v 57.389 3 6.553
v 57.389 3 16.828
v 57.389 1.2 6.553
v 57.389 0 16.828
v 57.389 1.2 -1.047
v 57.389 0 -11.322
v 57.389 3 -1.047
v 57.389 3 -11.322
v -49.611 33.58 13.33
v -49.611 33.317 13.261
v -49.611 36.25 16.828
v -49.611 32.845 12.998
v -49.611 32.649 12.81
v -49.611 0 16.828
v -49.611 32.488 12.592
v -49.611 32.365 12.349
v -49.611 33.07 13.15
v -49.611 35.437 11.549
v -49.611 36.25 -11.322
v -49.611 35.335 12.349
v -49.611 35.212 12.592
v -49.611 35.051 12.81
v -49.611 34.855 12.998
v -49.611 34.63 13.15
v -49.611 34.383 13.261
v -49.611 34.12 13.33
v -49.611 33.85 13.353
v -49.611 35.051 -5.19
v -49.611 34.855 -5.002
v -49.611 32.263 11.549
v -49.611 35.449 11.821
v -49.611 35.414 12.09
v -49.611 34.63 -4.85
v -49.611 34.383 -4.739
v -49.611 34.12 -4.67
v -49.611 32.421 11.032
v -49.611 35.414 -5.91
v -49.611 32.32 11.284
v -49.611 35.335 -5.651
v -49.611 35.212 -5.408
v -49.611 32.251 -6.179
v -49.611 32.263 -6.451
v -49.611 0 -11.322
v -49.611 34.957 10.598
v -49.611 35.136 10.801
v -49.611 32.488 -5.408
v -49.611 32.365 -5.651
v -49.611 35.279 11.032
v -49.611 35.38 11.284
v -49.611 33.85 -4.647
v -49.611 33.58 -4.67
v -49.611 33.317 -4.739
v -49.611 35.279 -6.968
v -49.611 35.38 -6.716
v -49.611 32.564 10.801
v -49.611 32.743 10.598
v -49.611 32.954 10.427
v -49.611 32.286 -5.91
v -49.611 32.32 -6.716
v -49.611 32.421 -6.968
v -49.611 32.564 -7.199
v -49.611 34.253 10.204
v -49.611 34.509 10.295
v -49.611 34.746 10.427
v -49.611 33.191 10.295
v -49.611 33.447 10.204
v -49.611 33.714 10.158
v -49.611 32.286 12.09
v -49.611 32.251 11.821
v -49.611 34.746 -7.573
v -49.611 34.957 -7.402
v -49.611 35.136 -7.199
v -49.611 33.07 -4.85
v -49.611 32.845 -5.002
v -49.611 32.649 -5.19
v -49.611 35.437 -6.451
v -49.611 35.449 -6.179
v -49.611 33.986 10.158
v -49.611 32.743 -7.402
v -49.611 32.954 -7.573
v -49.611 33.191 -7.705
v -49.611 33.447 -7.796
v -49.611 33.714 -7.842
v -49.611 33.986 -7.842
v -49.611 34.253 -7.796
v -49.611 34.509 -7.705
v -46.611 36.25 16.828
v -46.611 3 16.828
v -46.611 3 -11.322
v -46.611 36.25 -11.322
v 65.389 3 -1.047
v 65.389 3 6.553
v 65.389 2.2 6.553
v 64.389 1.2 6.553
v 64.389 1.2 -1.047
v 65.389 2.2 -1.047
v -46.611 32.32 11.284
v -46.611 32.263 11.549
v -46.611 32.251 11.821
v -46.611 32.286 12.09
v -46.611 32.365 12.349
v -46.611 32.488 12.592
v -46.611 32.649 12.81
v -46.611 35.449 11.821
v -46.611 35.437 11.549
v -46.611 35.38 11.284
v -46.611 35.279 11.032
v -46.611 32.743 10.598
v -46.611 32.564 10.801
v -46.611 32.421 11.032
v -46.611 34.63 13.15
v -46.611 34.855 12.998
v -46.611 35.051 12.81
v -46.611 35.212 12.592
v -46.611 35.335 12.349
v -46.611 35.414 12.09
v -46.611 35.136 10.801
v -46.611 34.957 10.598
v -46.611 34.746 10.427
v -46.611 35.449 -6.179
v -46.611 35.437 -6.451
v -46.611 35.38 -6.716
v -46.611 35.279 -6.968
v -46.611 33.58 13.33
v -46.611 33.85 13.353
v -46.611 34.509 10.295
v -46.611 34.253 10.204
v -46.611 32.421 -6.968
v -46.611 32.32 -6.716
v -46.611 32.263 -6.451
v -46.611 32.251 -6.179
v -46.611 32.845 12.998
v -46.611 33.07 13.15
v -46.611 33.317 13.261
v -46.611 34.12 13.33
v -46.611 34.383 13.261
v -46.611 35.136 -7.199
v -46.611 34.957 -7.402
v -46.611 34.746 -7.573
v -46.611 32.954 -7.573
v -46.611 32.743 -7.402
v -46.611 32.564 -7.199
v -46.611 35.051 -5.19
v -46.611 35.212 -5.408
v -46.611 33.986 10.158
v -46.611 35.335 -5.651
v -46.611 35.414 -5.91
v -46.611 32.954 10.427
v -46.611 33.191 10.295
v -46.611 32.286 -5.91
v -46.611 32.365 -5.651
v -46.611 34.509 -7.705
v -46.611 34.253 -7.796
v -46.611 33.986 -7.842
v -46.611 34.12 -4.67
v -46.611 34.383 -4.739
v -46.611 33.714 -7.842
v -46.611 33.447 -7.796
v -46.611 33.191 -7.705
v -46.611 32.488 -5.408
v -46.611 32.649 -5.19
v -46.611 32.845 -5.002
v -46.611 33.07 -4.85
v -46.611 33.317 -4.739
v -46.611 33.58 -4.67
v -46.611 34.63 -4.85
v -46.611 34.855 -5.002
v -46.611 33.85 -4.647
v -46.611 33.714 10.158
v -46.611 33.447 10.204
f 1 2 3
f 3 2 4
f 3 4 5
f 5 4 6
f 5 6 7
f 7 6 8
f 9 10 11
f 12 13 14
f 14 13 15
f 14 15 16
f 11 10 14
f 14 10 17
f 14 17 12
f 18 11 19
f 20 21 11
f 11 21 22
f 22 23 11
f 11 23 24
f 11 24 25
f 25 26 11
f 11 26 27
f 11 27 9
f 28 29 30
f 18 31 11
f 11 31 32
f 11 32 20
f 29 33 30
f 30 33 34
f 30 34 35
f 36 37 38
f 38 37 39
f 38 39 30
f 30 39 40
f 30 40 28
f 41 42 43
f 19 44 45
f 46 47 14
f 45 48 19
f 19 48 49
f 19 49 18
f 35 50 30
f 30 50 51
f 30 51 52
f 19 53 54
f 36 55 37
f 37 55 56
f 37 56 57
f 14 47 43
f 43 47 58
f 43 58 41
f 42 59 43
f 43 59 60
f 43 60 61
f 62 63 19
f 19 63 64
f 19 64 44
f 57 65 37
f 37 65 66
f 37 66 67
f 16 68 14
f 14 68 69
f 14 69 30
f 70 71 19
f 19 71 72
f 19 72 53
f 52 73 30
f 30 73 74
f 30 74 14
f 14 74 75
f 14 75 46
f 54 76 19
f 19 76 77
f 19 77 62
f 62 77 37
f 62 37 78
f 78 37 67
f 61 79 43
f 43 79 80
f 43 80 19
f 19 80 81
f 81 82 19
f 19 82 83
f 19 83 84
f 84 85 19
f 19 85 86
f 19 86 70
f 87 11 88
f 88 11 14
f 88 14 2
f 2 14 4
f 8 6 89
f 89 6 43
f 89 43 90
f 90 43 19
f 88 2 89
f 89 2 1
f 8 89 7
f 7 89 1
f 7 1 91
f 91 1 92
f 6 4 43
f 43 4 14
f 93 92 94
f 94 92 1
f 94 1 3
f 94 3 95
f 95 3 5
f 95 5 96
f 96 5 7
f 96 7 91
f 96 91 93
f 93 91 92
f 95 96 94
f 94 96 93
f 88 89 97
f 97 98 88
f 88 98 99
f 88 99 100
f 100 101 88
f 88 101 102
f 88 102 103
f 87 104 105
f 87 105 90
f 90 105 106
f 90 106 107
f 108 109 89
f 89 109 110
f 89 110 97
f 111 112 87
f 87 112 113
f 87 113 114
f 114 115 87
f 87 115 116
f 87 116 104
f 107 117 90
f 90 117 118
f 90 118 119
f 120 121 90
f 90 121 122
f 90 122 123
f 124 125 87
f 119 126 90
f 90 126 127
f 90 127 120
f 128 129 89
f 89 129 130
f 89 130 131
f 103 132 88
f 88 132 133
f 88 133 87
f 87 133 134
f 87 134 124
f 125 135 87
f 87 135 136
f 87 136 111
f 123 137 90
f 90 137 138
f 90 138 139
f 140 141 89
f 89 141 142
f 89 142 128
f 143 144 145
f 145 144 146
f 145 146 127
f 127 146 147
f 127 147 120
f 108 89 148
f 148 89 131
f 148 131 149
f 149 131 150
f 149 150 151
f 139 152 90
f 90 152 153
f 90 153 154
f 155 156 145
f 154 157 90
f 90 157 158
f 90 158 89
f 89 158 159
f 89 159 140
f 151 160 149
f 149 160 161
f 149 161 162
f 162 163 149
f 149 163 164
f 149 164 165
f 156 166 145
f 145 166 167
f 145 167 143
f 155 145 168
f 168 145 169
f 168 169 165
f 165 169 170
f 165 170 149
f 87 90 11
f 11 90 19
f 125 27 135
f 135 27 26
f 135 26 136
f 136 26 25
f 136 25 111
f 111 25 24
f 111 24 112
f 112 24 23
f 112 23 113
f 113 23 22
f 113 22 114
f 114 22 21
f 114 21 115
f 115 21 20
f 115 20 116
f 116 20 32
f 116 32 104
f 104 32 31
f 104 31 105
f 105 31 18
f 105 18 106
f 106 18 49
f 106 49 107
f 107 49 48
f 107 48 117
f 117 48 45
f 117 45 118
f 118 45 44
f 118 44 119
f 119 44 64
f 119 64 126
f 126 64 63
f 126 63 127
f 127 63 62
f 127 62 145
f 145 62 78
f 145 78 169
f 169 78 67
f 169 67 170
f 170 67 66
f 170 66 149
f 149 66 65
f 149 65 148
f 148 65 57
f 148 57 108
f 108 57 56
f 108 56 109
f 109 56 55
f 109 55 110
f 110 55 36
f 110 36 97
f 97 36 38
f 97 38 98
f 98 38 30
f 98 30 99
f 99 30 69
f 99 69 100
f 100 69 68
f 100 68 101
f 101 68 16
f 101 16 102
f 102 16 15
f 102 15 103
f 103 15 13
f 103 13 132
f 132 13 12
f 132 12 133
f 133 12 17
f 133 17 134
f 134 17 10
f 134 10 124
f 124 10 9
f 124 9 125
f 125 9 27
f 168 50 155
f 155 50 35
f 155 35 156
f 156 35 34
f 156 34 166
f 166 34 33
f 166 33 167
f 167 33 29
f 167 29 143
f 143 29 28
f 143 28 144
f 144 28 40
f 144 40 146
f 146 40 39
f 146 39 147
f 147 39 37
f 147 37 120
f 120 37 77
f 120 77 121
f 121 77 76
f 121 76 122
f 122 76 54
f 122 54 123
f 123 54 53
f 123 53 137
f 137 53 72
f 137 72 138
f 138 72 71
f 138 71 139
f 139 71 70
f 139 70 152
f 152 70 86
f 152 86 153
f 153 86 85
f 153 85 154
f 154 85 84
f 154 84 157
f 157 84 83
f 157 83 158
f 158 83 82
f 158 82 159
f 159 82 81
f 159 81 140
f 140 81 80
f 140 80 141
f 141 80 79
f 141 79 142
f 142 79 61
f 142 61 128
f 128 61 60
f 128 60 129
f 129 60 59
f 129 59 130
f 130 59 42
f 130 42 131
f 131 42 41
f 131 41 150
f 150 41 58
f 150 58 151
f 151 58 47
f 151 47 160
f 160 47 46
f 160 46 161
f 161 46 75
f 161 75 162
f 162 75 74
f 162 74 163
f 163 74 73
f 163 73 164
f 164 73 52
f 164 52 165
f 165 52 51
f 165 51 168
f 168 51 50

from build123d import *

# Parameters (mm, degrees)
SKETCH1_W           = 107
SKETCH1_H           = 28.15
BOSS_EXTRUDE1_DEPTH = 3
SKETCH2_W           = 7.6
SKETCH2_H           = 1.8
BOSS_EXTRUDE2_DEPTH = 8
CHAMFER1_SIZE       = 1
SKETCH3_W           = 3
SKETCH3_H           = 28.15
BOSS_EXTRUDE3_DEPTH = 33.25
SKETCH4_R           = 1.6
CUT_EXTRUDE1_DEPTH  = 33.25


with BuildPart() as part:
    # Sketch1 → Boss-Extrude1 (new body)
    with BuildSketch(Plane(origin=(0, 0, 0), x_dir=(1, 0, 0), z_dir=(0, 1, 0))):
        with Locations((3.889337641, -2.752705977)):
            Rectangle(SKETCH1_W, SKETCH1_H)
    extrude(amount=BOSS_EXTRUDE1_DEPTH)

    # Sketch2 → Boss-Extrude2 (add)
    with BuildSketch(Plane(origin=(57.389337641, 0, 0), x_dir=(0, 0, -1), z_dir=(1, 0, 0))):
        with Locations((-2.752705977, 2.1)):
            Rectangle(SKETCH2_W, SKETCH2_H)
    extrude(amount=BOSS_EXTRUDE2_DEPTH)

    # Chamfer1
    chamfer1_edges = [part.edges().sort_by_distance(p)[0] for p in [
        (65.389337641, 1.2, 2.752705977),
    ]]
    chamfer(chamfer1_edges, length=CHAMFER1_SIZE)

    # Sketch3 → Boss-Extrude3 (add)
    with BuildSketch(Plane(origin=(0, 3, 0), x_dir=(1, 0, 0), z_dir=(0, 1, 0))):
        with Locations((-48.110662359, -2.752705977)):
            Rectangle(SKETCH3_W, SKETCH3_H)
    extrude(amount=BOSS_EXTRUDE3_DEPTH)

    # Sketch4 → Cut-Extrude1 (cut)
    with BuildSketch(Plane.ZY.offset(49.610662359)):
        with Locations((-6.247294023, 33.85)):
            Circle(SKETCH4_R)
        with Locations((11.752705977, 33.85)):
            Circle(SKETCH4_R)
    extrude(amount=-CUT_EXTRUDE1_DEPTH, mode=Mode.SUBTRACT)


solid = part.part
